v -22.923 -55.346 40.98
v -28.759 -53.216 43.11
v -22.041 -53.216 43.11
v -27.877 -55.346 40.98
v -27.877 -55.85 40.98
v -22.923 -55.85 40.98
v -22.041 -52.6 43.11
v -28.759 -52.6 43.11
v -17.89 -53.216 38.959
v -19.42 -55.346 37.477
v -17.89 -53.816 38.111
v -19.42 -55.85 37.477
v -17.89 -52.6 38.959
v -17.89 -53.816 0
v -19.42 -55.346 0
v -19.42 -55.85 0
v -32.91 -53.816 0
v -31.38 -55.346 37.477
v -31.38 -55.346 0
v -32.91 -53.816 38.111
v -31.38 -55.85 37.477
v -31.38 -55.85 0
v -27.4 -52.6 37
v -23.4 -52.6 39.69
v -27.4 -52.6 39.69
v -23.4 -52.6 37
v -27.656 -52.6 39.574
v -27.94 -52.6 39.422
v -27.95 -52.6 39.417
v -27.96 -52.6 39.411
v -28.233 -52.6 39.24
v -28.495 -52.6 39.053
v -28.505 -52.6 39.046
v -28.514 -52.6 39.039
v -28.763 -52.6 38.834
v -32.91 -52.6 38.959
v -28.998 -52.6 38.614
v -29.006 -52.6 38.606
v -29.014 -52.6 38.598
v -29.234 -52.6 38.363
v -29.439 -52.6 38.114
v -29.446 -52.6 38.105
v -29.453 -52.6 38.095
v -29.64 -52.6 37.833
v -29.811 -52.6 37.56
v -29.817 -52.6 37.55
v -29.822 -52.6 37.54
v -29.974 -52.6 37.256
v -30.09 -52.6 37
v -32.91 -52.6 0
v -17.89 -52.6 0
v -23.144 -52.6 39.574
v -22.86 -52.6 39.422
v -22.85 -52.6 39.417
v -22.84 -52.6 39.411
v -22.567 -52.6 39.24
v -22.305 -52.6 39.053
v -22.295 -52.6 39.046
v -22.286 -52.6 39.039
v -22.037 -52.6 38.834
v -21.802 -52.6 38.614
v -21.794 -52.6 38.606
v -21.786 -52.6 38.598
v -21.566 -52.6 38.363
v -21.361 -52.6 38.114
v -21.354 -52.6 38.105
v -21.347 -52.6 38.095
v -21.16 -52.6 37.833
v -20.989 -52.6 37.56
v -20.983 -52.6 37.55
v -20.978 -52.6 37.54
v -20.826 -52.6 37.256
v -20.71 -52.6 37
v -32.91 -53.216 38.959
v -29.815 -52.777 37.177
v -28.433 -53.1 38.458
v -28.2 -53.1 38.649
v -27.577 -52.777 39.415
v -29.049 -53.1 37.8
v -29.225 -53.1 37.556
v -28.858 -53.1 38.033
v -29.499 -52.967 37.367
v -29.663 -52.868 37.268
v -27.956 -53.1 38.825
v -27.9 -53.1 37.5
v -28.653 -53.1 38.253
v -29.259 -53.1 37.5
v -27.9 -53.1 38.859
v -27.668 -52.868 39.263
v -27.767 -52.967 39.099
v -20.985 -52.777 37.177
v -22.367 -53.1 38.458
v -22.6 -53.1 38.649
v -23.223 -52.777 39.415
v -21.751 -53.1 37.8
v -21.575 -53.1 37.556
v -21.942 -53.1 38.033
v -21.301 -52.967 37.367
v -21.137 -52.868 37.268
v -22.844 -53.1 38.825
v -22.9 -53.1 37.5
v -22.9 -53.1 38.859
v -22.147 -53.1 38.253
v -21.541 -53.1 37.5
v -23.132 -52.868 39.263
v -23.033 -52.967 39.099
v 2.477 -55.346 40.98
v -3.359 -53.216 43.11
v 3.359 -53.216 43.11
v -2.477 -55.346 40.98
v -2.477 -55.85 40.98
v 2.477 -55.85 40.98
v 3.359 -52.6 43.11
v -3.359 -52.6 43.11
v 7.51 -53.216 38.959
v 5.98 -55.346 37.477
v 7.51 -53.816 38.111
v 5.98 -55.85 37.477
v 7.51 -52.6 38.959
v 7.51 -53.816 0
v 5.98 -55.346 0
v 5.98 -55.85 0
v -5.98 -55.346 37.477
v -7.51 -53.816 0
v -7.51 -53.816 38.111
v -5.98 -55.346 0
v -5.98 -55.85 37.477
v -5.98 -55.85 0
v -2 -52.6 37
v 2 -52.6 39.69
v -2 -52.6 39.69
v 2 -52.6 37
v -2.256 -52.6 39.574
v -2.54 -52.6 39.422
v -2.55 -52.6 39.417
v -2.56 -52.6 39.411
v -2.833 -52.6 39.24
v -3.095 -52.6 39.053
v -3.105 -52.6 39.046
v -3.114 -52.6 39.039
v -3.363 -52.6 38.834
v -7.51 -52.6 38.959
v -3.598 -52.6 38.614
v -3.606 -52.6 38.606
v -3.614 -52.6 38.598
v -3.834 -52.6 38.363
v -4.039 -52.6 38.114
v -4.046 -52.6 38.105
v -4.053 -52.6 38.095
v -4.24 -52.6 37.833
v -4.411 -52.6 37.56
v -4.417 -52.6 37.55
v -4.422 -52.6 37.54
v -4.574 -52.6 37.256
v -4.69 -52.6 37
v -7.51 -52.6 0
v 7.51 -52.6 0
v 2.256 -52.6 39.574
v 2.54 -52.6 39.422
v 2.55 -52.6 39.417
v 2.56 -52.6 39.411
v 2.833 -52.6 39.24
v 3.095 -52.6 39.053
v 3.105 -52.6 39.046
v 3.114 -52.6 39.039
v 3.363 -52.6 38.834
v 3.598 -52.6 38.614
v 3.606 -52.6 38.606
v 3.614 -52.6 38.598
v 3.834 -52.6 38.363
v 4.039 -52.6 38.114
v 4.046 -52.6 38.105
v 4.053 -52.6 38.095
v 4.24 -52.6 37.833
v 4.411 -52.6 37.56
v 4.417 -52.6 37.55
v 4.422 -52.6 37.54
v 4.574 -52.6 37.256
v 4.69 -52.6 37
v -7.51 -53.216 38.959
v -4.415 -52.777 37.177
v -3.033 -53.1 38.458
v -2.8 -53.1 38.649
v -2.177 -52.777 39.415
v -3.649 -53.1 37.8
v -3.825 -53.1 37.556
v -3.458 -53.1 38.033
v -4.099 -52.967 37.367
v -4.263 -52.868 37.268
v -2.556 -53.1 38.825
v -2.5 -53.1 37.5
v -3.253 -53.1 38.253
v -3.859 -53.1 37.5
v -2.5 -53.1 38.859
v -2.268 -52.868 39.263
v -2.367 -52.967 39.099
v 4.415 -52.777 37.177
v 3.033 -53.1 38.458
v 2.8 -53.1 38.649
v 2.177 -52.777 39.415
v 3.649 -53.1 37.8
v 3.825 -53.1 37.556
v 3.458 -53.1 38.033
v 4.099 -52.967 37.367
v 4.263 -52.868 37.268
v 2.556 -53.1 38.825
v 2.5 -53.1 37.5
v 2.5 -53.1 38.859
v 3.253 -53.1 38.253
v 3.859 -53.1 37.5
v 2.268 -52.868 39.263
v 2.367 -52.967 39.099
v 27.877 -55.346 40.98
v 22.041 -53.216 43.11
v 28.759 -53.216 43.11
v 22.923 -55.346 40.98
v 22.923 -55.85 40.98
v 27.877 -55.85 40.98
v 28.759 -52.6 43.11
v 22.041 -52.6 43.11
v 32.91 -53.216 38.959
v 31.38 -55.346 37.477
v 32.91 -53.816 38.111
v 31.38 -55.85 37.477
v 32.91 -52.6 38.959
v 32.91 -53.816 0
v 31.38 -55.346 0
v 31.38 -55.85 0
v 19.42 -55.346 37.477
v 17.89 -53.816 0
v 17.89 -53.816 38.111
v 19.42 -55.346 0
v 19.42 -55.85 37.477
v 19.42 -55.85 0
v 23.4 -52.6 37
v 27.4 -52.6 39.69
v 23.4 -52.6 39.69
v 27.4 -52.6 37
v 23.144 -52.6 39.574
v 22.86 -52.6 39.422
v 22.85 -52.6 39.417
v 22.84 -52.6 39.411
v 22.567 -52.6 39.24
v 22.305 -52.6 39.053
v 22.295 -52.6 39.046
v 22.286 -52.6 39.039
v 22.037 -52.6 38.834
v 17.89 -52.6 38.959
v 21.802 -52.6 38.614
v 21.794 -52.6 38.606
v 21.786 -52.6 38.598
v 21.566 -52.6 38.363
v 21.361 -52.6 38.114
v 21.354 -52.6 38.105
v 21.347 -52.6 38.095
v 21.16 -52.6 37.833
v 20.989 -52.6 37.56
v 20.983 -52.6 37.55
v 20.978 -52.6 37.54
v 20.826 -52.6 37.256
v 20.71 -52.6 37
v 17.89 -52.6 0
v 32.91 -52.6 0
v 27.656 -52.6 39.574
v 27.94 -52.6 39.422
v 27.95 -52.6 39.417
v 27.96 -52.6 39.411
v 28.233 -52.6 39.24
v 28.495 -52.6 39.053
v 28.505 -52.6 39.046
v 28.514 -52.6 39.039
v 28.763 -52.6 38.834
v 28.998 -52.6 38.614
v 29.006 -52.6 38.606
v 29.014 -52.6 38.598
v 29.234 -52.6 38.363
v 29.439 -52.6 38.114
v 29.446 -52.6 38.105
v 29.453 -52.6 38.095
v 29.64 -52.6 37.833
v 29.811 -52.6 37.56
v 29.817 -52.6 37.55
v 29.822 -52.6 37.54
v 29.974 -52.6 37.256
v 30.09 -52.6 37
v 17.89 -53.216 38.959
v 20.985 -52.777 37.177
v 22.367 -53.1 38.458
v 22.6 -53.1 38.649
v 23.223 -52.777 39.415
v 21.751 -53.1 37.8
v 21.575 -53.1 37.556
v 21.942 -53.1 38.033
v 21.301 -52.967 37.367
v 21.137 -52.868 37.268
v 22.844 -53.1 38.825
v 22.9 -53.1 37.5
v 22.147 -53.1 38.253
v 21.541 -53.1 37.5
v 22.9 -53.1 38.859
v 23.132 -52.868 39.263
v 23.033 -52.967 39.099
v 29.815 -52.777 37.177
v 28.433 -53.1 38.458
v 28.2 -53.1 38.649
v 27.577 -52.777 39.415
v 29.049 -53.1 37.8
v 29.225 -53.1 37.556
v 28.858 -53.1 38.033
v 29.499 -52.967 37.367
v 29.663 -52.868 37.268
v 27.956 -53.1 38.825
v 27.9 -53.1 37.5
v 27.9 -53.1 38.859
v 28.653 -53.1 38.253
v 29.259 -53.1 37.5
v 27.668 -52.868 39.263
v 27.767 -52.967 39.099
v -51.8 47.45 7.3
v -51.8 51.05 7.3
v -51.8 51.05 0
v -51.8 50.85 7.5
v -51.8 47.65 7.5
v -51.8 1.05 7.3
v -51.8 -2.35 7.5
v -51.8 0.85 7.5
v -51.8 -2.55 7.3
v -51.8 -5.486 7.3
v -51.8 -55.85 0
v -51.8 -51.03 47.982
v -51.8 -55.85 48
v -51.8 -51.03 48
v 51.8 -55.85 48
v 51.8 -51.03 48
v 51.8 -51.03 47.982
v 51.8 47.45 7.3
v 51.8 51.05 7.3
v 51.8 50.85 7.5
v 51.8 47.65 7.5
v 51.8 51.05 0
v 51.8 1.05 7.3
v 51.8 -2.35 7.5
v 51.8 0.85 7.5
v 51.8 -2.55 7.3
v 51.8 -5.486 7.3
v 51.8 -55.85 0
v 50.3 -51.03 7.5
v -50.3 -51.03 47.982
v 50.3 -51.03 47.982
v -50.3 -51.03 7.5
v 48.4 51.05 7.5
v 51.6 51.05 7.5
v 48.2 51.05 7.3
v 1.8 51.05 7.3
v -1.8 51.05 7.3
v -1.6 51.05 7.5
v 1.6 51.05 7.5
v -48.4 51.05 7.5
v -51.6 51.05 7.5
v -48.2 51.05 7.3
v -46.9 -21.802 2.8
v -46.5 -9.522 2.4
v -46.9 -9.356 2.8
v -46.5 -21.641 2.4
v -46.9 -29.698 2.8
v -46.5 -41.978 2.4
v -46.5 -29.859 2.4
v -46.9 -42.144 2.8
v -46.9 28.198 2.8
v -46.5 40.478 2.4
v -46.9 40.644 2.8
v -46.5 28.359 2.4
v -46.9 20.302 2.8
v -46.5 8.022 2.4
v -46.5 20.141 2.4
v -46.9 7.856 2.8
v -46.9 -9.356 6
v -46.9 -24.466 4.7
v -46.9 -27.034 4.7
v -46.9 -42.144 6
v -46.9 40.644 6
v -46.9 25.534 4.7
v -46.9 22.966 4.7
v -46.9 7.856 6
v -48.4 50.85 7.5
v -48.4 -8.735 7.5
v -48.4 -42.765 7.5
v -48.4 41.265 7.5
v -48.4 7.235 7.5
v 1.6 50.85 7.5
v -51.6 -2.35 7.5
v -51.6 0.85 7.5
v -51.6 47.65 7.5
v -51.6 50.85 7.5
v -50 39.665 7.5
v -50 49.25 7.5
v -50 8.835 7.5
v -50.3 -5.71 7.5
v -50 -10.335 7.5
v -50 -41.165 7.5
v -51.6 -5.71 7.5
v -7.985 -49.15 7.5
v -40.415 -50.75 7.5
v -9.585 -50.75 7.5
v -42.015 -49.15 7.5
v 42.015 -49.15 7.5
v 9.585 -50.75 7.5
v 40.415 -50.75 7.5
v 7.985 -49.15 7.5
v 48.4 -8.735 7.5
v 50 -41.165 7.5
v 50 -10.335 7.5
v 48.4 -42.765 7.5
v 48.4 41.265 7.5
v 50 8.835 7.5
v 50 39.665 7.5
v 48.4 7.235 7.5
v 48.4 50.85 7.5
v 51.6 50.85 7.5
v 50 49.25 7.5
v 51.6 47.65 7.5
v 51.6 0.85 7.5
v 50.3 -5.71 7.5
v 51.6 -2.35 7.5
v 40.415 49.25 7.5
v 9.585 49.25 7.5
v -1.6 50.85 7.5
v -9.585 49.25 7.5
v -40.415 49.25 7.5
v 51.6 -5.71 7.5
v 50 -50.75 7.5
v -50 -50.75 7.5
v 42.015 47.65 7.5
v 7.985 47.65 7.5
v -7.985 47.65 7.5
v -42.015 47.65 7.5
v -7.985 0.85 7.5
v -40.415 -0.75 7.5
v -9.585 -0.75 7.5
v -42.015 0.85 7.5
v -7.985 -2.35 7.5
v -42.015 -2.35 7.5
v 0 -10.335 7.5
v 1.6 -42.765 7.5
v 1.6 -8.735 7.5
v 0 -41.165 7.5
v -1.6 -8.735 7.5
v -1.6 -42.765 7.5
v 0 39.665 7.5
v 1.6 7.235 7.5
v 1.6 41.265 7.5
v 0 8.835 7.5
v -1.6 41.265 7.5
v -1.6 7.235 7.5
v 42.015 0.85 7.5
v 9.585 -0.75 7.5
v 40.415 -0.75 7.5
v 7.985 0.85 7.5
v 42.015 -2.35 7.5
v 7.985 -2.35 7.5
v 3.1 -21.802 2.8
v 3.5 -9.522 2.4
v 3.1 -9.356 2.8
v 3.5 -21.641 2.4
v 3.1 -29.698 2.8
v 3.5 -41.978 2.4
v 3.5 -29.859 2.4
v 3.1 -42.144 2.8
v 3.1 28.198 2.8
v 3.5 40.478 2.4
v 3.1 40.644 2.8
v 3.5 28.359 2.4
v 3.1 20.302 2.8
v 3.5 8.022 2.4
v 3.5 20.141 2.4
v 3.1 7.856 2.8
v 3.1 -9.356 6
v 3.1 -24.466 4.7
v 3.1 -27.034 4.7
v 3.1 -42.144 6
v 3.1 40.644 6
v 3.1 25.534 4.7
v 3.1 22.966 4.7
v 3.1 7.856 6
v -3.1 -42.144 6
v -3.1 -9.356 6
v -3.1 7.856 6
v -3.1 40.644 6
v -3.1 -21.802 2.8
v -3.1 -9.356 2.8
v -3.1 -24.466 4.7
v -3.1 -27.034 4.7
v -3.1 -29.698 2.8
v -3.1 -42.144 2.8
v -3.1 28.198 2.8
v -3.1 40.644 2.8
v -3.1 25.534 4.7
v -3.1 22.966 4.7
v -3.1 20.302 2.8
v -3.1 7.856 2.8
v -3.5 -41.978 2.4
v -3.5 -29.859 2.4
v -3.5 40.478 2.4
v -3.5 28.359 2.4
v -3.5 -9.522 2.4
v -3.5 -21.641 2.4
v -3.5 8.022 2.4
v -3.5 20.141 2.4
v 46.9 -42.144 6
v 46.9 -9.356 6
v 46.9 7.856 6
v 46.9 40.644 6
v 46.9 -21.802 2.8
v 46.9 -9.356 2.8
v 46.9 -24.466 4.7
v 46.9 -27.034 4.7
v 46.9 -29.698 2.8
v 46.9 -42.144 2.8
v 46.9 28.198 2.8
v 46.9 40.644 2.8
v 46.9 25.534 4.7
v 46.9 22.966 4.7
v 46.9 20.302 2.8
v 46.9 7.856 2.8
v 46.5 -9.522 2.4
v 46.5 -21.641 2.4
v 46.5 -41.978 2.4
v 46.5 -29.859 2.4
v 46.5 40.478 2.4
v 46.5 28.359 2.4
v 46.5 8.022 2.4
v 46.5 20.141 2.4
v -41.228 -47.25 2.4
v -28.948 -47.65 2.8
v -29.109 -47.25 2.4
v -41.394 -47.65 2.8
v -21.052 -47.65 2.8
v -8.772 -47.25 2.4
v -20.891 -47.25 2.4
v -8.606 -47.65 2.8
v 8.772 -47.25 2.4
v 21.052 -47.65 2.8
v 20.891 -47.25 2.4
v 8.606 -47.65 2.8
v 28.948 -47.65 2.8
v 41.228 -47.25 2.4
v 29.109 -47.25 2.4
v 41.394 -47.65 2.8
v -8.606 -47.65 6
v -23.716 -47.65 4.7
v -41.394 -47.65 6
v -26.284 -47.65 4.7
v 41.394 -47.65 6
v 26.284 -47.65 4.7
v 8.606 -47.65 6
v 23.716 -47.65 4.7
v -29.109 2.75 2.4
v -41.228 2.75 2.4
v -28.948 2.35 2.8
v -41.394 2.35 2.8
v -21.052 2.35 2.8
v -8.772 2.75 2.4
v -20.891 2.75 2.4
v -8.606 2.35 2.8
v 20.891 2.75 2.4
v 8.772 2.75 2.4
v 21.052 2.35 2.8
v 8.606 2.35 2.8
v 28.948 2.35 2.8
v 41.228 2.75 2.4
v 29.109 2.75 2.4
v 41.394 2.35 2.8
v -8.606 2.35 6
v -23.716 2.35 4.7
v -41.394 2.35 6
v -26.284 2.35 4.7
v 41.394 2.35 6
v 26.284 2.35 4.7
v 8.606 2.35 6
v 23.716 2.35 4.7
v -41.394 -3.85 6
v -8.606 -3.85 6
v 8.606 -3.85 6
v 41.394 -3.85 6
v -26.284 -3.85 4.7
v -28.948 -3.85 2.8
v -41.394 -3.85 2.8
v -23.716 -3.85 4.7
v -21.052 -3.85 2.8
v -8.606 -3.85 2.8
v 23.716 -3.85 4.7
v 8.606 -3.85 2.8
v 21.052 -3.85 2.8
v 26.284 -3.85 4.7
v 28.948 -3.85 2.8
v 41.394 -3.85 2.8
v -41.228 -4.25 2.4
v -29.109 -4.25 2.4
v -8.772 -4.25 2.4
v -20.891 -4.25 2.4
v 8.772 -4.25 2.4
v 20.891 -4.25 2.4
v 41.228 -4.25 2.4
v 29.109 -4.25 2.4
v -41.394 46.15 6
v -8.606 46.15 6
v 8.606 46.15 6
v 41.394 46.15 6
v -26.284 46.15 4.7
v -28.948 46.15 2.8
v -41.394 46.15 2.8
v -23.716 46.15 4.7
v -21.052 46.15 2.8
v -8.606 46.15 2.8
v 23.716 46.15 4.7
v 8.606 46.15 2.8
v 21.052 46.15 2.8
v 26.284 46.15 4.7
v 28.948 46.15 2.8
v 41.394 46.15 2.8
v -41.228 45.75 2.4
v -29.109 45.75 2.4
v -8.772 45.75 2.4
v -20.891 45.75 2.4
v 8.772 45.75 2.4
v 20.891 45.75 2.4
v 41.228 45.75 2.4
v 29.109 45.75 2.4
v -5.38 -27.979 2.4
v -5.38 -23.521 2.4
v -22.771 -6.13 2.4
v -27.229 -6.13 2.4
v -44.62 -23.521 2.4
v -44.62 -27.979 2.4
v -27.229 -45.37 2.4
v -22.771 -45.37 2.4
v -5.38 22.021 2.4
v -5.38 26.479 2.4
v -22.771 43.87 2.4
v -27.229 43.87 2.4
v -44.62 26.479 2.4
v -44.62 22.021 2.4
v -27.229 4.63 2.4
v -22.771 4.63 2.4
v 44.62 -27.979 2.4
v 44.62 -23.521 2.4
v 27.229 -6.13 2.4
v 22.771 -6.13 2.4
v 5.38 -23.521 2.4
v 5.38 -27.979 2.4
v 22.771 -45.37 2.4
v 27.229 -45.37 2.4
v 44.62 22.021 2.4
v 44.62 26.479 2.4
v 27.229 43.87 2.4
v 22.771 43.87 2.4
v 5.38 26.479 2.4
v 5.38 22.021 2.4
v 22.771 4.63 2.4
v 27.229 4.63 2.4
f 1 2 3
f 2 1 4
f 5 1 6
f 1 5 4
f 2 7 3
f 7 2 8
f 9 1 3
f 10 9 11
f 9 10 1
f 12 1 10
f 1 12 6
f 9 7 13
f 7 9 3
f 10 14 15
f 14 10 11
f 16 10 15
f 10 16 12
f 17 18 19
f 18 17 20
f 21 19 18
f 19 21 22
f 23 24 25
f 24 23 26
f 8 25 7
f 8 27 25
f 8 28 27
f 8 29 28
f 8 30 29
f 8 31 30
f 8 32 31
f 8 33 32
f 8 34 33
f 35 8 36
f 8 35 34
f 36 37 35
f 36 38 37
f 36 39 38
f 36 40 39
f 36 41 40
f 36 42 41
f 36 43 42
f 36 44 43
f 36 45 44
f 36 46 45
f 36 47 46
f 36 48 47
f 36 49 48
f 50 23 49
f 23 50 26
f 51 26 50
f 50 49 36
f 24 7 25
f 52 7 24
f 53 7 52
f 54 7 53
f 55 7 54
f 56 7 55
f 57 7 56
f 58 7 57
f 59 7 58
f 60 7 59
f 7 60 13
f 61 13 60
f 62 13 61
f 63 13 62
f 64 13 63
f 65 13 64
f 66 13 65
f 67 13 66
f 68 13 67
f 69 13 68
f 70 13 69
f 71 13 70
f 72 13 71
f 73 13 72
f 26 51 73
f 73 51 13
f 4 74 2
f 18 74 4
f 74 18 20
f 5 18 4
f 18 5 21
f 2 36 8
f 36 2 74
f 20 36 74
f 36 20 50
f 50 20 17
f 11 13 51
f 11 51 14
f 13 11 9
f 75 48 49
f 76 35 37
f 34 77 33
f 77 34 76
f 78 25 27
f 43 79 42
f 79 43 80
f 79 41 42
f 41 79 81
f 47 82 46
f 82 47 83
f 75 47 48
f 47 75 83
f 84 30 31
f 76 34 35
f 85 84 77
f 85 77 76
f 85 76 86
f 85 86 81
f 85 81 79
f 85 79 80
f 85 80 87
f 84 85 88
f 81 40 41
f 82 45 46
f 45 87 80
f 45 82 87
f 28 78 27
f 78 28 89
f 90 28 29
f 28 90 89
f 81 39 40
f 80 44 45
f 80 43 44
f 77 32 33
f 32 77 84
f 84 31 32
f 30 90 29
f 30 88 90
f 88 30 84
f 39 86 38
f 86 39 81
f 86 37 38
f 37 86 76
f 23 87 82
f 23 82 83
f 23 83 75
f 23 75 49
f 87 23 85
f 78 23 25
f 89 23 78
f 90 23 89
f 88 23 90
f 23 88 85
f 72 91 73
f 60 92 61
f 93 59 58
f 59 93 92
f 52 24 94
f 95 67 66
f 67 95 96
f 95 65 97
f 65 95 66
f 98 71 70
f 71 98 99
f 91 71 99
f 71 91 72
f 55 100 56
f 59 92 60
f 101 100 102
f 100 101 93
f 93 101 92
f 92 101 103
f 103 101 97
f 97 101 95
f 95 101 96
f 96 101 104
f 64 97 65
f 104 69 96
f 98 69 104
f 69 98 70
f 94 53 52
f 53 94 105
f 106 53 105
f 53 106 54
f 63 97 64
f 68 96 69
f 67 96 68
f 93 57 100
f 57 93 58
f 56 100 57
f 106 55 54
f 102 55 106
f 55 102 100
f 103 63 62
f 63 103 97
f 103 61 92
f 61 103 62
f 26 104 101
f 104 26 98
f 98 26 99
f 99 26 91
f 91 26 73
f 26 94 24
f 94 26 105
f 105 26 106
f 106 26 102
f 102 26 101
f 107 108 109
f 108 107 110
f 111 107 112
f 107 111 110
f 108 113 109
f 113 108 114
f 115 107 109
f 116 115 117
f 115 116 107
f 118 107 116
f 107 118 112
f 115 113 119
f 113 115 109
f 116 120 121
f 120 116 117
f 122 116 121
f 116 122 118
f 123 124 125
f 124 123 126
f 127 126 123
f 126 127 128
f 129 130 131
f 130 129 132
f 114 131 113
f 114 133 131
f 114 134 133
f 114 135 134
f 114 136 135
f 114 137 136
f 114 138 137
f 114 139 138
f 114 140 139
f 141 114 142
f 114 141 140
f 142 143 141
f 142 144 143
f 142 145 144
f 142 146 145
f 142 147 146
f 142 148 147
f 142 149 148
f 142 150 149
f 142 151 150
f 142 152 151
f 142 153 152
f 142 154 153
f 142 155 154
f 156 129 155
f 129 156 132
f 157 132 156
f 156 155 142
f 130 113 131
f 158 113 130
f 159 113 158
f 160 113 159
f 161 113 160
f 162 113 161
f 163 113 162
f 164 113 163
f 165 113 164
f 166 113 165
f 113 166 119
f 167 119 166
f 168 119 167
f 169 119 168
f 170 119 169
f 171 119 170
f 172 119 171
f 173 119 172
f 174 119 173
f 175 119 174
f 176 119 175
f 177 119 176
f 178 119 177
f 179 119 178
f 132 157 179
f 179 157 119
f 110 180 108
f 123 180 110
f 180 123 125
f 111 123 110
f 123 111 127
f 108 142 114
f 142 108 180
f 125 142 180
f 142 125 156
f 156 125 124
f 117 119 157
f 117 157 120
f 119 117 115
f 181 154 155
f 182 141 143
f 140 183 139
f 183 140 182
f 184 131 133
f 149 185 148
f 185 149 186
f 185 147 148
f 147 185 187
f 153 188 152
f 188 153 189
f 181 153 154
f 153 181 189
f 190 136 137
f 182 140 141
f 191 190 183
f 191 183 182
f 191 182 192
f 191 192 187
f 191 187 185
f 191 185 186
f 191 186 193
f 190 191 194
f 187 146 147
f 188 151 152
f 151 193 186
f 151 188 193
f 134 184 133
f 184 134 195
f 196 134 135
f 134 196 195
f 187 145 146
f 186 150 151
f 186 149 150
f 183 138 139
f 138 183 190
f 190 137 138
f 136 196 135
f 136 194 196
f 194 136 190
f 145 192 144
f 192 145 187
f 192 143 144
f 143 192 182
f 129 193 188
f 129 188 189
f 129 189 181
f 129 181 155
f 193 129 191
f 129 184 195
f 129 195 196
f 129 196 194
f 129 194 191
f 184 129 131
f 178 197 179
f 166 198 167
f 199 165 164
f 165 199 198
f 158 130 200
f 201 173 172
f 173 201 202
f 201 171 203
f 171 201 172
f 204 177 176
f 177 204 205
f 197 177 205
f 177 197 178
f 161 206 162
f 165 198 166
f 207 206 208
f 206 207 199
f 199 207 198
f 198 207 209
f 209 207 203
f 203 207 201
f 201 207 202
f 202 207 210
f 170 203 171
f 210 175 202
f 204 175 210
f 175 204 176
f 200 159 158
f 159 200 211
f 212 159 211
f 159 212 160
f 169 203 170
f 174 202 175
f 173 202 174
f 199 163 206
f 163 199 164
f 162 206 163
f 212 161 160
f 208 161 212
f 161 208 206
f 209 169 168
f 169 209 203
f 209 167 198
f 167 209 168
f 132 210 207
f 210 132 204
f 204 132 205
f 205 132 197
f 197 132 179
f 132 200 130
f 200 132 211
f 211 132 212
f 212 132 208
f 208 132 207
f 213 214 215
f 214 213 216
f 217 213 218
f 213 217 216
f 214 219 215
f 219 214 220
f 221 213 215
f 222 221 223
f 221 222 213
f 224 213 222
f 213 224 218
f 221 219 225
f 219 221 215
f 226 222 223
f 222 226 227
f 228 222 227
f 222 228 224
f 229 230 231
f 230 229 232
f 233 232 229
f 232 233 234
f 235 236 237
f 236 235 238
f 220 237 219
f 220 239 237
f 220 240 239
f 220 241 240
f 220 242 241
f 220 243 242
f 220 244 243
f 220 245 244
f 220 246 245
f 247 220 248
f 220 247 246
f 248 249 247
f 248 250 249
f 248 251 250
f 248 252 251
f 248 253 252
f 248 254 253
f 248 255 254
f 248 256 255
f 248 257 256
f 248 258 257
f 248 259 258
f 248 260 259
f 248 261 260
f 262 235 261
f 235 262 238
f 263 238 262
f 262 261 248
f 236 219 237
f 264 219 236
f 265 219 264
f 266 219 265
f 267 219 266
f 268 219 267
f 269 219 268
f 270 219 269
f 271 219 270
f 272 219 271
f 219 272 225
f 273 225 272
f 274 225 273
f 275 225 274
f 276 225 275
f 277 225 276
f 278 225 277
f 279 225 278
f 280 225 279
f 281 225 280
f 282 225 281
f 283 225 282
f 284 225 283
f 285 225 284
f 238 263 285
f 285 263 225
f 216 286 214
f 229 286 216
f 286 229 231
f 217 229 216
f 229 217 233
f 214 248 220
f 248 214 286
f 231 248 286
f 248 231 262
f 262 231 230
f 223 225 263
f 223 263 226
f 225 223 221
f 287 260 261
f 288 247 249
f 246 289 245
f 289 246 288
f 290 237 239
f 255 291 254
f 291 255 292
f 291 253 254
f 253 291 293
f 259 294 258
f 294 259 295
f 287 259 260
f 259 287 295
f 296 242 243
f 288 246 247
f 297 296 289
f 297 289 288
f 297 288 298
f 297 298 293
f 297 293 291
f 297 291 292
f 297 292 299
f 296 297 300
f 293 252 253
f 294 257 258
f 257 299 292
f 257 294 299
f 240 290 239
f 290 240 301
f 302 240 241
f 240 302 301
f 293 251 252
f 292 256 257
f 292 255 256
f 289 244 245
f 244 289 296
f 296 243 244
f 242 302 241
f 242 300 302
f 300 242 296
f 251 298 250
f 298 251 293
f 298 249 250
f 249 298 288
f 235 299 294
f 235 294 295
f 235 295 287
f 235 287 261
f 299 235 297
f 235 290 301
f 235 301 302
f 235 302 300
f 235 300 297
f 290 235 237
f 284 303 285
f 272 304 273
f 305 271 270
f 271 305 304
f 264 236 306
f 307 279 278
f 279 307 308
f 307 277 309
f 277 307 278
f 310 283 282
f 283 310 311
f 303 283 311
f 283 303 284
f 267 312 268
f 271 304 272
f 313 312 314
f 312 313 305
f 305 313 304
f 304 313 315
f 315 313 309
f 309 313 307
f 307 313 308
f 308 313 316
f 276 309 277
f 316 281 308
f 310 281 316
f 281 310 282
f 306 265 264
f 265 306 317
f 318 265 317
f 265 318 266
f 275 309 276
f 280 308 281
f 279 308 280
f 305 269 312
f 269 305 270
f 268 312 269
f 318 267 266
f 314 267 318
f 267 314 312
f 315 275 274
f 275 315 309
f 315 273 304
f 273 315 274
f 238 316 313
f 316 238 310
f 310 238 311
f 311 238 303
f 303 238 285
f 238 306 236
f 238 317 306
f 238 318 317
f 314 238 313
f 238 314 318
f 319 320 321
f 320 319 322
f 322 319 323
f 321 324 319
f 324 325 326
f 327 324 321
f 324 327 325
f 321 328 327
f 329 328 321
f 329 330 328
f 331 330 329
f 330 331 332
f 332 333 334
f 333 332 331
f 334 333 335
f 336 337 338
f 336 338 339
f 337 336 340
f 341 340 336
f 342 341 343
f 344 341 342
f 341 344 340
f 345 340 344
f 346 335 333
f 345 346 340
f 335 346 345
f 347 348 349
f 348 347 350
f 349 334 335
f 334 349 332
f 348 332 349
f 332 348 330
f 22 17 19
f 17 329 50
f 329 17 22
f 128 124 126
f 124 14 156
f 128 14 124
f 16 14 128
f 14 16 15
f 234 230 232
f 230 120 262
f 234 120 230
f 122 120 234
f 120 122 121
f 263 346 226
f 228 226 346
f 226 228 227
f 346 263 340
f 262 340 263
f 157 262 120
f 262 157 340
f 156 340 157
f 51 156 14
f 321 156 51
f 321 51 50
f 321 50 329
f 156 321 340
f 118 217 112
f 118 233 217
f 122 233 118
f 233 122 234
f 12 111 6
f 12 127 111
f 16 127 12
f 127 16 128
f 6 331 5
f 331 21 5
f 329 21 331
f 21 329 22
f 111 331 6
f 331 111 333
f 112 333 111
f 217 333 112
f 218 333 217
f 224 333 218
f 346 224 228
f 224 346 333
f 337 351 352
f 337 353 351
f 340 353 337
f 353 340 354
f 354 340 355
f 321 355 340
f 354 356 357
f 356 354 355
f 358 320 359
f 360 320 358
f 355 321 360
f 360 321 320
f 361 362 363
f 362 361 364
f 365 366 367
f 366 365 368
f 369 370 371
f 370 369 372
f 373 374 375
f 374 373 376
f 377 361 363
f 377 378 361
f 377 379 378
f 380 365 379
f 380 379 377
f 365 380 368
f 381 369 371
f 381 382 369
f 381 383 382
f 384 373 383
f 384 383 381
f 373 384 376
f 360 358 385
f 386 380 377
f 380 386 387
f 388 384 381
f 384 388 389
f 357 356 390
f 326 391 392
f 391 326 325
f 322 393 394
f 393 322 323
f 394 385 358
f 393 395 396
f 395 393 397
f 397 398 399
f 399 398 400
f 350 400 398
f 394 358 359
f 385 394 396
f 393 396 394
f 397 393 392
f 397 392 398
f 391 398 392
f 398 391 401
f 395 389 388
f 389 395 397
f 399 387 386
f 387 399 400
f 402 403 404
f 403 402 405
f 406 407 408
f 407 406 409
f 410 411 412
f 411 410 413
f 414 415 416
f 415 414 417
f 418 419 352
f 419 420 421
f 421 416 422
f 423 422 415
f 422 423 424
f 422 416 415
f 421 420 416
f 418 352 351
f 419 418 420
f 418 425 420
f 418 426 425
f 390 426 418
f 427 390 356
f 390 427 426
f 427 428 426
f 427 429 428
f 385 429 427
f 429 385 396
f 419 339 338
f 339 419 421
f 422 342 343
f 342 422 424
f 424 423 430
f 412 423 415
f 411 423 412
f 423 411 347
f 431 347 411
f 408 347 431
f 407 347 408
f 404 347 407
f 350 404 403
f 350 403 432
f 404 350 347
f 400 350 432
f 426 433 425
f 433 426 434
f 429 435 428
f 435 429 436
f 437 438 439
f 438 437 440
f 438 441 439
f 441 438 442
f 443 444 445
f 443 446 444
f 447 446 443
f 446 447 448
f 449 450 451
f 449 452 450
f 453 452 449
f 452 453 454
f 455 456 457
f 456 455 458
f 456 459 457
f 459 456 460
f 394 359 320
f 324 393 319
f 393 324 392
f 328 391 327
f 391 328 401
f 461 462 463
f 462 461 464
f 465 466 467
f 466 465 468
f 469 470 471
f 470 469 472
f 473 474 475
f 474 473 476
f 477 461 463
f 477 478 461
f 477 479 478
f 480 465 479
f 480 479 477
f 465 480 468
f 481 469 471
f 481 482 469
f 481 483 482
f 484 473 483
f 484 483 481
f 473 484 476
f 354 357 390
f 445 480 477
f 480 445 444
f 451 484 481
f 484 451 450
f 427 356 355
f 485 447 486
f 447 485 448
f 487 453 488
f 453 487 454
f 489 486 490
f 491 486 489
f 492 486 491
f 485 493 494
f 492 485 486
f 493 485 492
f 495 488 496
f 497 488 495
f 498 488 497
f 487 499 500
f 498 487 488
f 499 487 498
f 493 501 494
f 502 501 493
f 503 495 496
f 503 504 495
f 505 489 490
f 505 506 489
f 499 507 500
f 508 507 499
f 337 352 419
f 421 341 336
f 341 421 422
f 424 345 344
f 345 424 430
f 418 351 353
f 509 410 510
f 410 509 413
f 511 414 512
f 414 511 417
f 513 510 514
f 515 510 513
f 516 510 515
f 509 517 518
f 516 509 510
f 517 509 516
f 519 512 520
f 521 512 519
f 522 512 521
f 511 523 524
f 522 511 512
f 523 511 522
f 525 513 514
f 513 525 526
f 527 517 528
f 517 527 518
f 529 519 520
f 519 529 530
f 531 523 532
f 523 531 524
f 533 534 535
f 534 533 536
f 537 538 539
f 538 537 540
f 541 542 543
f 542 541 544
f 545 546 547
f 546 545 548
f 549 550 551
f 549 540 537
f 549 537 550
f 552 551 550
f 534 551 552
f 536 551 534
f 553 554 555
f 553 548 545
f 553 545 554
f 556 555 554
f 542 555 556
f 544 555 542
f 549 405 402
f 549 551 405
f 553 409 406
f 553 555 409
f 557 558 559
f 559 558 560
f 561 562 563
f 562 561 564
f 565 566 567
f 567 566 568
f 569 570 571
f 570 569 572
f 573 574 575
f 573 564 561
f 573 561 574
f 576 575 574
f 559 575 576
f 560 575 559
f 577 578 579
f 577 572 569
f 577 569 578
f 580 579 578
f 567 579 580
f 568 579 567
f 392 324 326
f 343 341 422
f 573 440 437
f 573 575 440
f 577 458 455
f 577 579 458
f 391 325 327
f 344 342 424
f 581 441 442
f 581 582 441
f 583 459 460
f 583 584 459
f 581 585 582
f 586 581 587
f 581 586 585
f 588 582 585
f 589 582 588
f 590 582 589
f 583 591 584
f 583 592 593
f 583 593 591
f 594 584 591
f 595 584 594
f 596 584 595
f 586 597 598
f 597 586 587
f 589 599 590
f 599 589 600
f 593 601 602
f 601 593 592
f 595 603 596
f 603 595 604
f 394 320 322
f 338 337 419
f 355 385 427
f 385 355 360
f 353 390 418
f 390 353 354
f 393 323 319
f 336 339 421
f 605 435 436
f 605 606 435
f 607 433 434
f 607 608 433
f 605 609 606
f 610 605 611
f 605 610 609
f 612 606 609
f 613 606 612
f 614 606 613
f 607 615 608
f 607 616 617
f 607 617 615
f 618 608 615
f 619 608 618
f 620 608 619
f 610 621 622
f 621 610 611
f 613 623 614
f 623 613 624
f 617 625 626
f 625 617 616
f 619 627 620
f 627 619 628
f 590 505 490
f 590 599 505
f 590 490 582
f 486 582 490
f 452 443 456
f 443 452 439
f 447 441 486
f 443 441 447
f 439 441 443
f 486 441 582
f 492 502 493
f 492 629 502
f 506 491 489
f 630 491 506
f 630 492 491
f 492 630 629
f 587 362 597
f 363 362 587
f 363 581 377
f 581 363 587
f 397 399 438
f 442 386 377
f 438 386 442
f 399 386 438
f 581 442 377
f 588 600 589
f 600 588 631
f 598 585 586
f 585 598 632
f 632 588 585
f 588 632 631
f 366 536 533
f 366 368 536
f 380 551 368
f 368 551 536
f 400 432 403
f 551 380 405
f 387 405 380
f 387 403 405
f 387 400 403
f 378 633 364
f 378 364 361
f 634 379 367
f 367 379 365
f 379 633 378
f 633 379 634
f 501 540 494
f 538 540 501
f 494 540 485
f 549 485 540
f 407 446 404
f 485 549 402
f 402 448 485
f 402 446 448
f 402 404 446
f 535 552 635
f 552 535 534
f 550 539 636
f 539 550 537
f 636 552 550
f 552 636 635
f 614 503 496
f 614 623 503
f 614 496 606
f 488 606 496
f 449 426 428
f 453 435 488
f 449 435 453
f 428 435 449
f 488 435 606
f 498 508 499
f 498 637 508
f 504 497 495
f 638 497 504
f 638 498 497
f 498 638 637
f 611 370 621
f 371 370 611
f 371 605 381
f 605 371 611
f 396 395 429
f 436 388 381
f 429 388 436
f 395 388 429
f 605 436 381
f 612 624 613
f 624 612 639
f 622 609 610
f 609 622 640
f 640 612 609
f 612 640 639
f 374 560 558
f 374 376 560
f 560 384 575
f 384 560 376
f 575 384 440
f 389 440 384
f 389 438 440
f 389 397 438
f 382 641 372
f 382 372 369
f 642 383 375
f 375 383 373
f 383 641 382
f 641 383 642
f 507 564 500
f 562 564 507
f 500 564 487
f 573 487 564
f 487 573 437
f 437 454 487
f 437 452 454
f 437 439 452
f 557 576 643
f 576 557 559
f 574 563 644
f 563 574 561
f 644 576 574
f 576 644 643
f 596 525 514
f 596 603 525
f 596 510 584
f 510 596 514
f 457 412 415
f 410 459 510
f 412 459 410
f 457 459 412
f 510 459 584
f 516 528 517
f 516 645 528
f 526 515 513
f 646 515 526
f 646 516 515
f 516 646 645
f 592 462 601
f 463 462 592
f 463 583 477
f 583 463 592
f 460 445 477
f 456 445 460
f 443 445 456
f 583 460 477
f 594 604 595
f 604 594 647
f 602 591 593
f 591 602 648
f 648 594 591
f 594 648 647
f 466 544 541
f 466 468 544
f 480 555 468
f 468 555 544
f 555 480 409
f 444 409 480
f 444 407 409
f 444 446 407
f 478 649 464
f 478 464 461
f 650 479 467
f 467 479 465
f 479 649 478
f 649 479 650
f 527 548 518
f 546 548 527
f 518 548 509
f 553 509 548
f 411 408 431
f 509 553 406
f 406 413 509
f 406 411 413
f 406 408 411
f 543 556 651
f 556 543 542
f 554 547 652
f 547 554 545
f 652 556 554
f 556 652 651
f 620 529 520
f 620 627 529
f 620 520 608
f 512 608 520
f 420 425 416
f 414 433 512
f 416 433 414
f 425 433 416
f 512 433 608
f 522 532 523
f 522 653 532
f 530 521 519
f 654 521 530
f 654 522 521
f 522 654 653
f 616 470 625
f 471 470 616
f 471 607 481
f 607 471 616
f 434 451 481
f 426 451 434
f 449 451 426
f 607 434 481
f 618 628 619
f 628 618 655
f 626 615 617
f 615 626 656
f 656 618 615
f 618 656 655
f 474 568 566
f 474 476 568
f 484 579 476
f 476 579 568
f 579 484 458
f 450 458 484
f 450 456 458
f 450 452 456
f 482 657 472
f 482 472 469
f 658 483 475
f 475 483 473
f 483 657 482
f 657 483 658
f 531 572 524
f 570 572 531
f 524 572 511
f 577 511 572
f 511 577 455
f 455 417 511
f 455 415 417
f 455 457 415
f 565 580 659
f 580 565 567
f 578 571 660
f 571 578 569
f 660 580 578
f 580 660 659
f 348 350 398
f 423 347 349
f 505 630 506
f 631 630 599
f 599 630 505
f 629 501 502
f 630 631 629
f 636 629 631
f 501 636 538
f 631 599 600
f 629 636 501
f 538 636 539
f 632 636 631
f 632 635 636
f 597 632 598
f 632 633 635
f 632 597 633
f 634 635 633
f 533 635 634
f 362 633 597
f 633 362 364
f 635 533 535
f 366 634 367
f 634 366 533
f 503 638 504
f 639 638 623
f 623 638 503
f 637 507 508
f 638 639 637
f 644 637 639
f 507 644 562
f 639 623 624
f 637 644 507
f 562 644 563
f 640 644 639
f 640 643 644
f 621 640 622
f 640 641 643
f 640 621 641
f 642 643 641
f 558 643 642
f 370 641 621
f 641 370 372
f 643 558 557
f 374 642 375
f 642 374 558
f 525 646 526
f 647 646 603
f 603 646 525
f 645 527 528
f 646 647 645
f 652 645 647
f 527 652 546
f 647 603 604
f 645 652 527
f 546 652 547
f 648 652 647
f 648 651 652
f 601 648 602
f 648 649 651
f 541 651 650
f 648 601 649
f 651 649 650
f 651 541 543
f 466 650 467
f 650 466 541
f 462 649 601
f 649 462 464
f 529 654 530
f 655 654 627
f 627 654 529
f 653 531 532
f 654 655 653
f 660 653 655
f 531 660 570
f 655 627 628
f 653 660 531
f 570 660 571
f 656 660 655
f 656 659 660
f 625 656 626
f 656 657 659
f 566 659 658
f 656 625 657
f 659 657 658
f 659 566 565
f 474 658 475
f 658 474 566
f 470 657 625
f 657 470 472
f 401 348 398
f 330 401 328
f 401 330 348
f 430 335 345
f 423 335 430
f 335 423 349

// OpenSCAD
/*Created by BlackjackDuck (Andy)
Credit to 
    @David D on Printables for Multiboard
    Jonathan at Keep Making for Multiconnect
    Zach at gridfinity.xyz for the Gridfinity standard
    Katie (and her community) at Hands on Katie on Youtube for advice
Licensed Creative Commons 4.0 Attribution Non-Commercial Sharable with Attribution
TODO: 
    - Add ability to tweak rim height
    - Ability to trim grid height (some versions lop off a tiny bit off the top)

Change Log:
- 2024-09-01 
    - Initial release
- 2025-04-08
    - New backs (Multipoint, openGrid, GOEWS)

*/
// Multibin shelf adaptation, September 2026.
// Reference: supplied 2x2x0.5 LU Topped Rail shell, measured 100 x 100 x 30 mm.
// Raised 50 mm locating grid engages the underside channels between shell feet.
// Drop-in fit, not a snap-lock: the shell lifts straight out.
// Self-contained: original slot profiles retained; back plate uses square edges.

/* [Slot Types] */
// Pegboard uses 25.4 mm pitch; pegboardRailLock selects the fitted rail profile.
Connection_Type = "Multipoint - 1 inch Pegboard"; // [Multipoint - 1 inch Pegboard, Multipoint, Multiconnect - Multiboard, Multiconnect - openGrid, Multiconnect - Custom Size, GOEWS]

/* [Parameters] */
// Render just the floor, locating grid and low rim for a fit-test print.
baseOnly = false;
// Nominal Multibin large units (LU), 50 mm per unit for the reference shell.
unitsWide = 2; // [1:1:10]
unitsDeep = 2; // [1:1:10]
multibinUnitSize = 50;
// Clearance PER SIDE around the complete nominal shell footprint.
shellClearance = 0.3; // [0:0.05:1]
rimThickness = 1.5;
// Rim height above the flat supporting surface.
additionalRimHeight = 2;
baseThickness = 2.4;
overrideBackHeight = false;
customBackHeight = 60;
// Remove the entire floor and low rim, leaving only the locating ridges below the shell.
removeBase = false;
bracketDepthPercentage = 50; // [0:1:100]
// Side brace thickness, matching the original Gridfinity design by default.
bracketThickness = 1.5;

/* [Multibin Locating Grid] */
// Horizontal gap PER SIDE along the measured groove profile.
grooveClearance = 0.10; // [0.05:0.05:0.6]
// Gap below the 5.4 mm groove roof. At least 0.3 also clears shallower crossings.
grooveRoofClearance = 0.3; // [0.3:0.05:1]
// Clearance normal to the diagonal corner faces and horizontally at notch tips.
locatorClearance = 0.10; // [0.05:0.05:0.5]

/* [Slot Customization] */
onRampHalfOffset = true;
customDistanceBetweenSlots = 25;
// Removes slots without shifting the remaining slots off their original grid.
subtractedSlots = 0;
// Multipoint modes: use the fitted Pegboard Click channel and its two upper locks.
pegboardRailLock = true;
// Horizontal clearance PER SIDE for the rail channel; slides in from below.
railSlotClearance = 0.11; // [0.05:0.01:0.4]
// Additional seating depth into the back plate, for the Pegboard Click rail only.
railRecessDepth = 0.80; // [0:0.05:0.9]
// Clearance for the rail's 0.4 mm-deep recesses (not the bin locating grid).
railLockClearance = 0.10; // [0.05:0.05:0.2]
// Minimum room below the seated 41 mm-long rail; back height increases as needed.
railEndClearance = 2;
// Overrides both locking options and removes all inward locking bumps.
slotQuickRelease = false;
dimpleScale = 1; // [0.5:0.05:1.5]
// Original Multiconnect control; Multipoint profiles keep their original size.
slotTolerance = 1.00; // [0.925:0.005:1.075]
slotDepthMicroadjustment = 0; // [-0.5:0.05:0.5]
// Generic pop-in ramps apply only when the fitted rail mode is disabled.
onRampEnabled = true;
On_Ramp_Every_X_Slots = 1;
Multiconnect_Stop_Distance_From_Back = 13;

/* [GOEWS Customization] */
GOEWS_Cleat_position = "normal"; // [normal, top, bottom, custom]
GOEWS_Cleat_custom_height_from_top_of_back = 11.24;

/* [Hidden] */
epsilon = 0.02;
// With no floor, put the ridge roots directly on the print bed.
floorHeight = removeBase ? 0 : baseThickness;
measuredGrooveWidth = 6.4;
measuredEntryChamfer = 0.4;
measuredTaperStart = 3.6;
measuredGrooveDepth = 5.4;
// Measured from the supplied STL at the straight section of each bottom foot.
measuredCornerSetback = 5.447764;
measuredNotchHeight = 2.3;
measuredNotchFlatHalfWidth = 2.27817;
footHalfWidth = (multibinUnitSize-measuredGrooveWidth)/2;
ridgeWidth = measuredGrooveWidth - 2*grooveClearance;
ridgeRootWidth = ridgeWidth + 2*measuredEntryChamfer;
ridgeHeight = measuredGrooveDepth - grooveRoofClearance;
ridgeTopWidth = ridgeWidth - 2*(ridgeHeight-measuredTaperStart);
$fa = 6;
$fs = 0.6;
pegboardMode = Connection_Type == "Multipoint - 1 inch Pegboard";
requestedBackHeight = overrideBackHeight ? customBackHeight : 15 + 15*unitsDeep;
onRampEveryXSlots = On_Ramp_Every_X_Slots;
distanceBetweenSlots = pegboardMode ? 25.4 :
    Connection_Type == "Multiconnect - openGrid" ? 28 :
    Connection_Type == "Multiconnect - Custom Size" ? customDistanceBetweenSlots :
    Connection_Type == "GOEWS" ? 42 : 25;
Connection_Standard = pegboardMode || Connection_Type == "Multipoint" ? "Multipoint" :
    Connection_Type == "GOEWS" ? "GOEWS" :
    Connection_Type == "Multiconnect - Multiboard" ||
    Connection_Type == "Multiconnect - openGrid" ||
    Connection_Type == "Multiconnect - Custom Size" ? "Multiconnect" : "Unknown";
railMountMode = pegboardRailLock && Connection_Standard == "Multipoint";
// Rail end centres are 25 mm apart, with 8 mm beyond each centre: 41 mm overall.
// Its upper centre seats at backHeight - stop distance; bottom is 33 mm below it.
minimumRailBackHeight = Multiconnect_Stop_Distance_From_Back + 33 + railEndClearance;
backHeight = railMountMode ? max(requestedBackHeight,minimumRailBackHeight) : requestedBackHeight;
railSlotInset = railMountMode ? railRecessDepth : 0;
railBumpProjection = 0.2 + 0.4 - railLockClearance;
shellWidth = unitsWide*multibinUnitSize;
shellDepth = unitsDeep*multibinUnitSize;
bayWidth = shellWidth + 2*shellClearance;
bayDepth = shellDepth + 2*shellClearance;
minimumWidth = bayWidth + 2*rimThickness;
// Compact width: usable bay plus the two side walls; no pegboard pitch padding.
totalWidth = minimumWidth;
sideMargin = rimThickness;
totalDepth = bayDepth + rimThickness;
totalHeight = backHeight;
bracketDepth = totalDepth*bracketDepthPercentage/100;
backThickness = Connection_Standard == "Multipoint" ? 4.8 : Connection_Standard == "GOEWS" ? 7 : 6.5;
// Keep one pitch of edge margin for slotted backs: three centred slots on 2x2.
// A narrow one-slot back remains supported. GOEWS keeps its original cleat count.
allSlots = Connection_Standard == "GOEWS" ? floor(totalWidth/distanceBetweenSlots + 0.000001) :
    max(1,floor(totalWidth/distanceBetweenSlots + 0.000001)-1);
slotCount = allSlots-subtractedSlots;
// Centre the full slot pattern. Removing slots preserves surviving positions.
firstSlot = (totalWidth-(allSlots-1)*distanceBetweenSlots)/2 + floor(subtractedSlots/2)*distanceBetweenSlots;

assert(unitsWide >= 1 && unitsWide == floor(unitsWide) && unitsDeep >= 1 && unitsDeep == floor(unitsDeep), "LU counts must be positive integers.");
assert(multibinUnitSize > 0 && shellClearance >= 0, "Unit size must be positive and clearance nonnegative.");
assert(rimThickness > 0 && baseThickness > 0 && additionalRimHeight >= 0, "Wall and floor thickness must be positive; rim height must be nonnegative.");
assert(Connection_Standard != "Unknown", "Select a supported Slot Type.");
assert(!railMountMode || (railLockClearance >= 0.05 && railLockClearance <= 0.2), "Rail lock clearance must be between 0.05 and 0.2 mm.");
assert(!railMountMode || (railSlotClearance >= 0.05 && railSlotClearance <= 0.4), "Rail slot clearance must be between 0.05 and 0.4 mm.");
assert(!railMountMode || (railRecessDepth >= 0 && railRecessDepth <= 0.9 && 2.35-slotDepthMicroadjustment-railRecessDepth >= 1.4), "Keep rail recess between 0 and 0.9 mm and at least 1.4 mm behind the slot.");
assert(!railMountMode || railEndClearance >= 0.5, "Allow at least 0.5 mm below the rail; 2 mm is the default.");
assert(distanceBetweenSlots >= 25, "Slot pitch must be at least 25 mm for these profiles.");
assert(subtractedSlots >= 0 && subtractedSlots == floor(subtractedSlots) && slotCount >= 1, "Keep at least one mounting slot; reduce subtractedSlots.");
assert(backHeight >= 25 && backHeight > baseThickness+additionalRimHeight, "Increase back height above the floor and rim, and to at least 25 mm.");
assert(Multiconnect_Stop_Distance_From_Back >= 12 && Multiconnect_Stop_Distance_From_Back < backHeight, "Slot stop distance must be at least 12 mm and less than back height.");
assert(On_Ramp_Every_X_Slots >= 1 && On_Ramp_Every_X_Slots == floor(On_Ramp_Every_X_Slots), "On-ramp frequency must be a positive integer.");
assert(bracketDepthPercentage >= 0 && bracketDepthPercentage <= 100, "Bracket depth must be between 0 and 100 percent.");
assert(bracketThickness > 0 && bracketThickness <= sideMargin, "Side brace thickness must be positive and fit within the side margin.");
assert(grooveClearance > 0 && ridgeWidth > 0 && ridgeWidth < multibinUnitSize, "Groove clearance must be positive and leave a ridge narrower than one LU.");
assert(grooveRoofClearance >= 0.3 && ridgeHeight > measuredTaperStart && ridgeHeight <= measuredGrooveDepth-0.3, "Roof clearance must be at least 0.3 mm and leave ridge engagement above 3.6 mm; crossings are shallower than the main groove.");
assert(ridgeTopWidth > 0 && ridgeRootWidth < multibinUnitSize, "Reduce groove clearance to retain a positive ridge top; unit size must exceed root width.");
assert(locatorClearance > 0 && locatorClearance < 1, "Locator clearance must be positive and below 1 mm.");
assert(footHalfWidth > measuredCornerSetback+measuredNotchFlatHalfWidth+measuredNotchHeight, "Increase unit size to leave space between corner and midpoint locators.");
echo(overall_width_mm=totalWidth, usable_bay_mm=[bayWidth,bayDepth], slot_pitch_mm=distanceBetweenSlots, slot_centres_from_left_mm=[for(i=[0:slotCount-1]) firstSlot+i*distanceBetweenSlots]);
echo(back_height_mm=backHeight, pegboard_rail_lock=railMountMode, rail_bottom_clearance_mm=railMountMode ? backHeight-Multiconnect_Stop_Distance_From_Back-33 : undef);

// Installed orientation: shell datum is floorHeight; printable geometry starts at Z=0.
translate([-totalWidth/2,-totalDepth/2,0]) shelf();

module shelf() {
    union() {
        if(!baseOnly)
            makebackPlate(totalWidth, backHeight, distanceBetweenSlots, backThickness);
        locatingGrid();
        if(!removeBase) {
            cube([totalWidth,totalDepth,baseThickness]);
            // Thin side walls enclose the bay, without extra lateral padding.
            for(x=[0,totalWidth-sideMargin])
                translate([x,0,0]) cube([sideMargin,totalDepth,baseThickness+additionalRimHeight]);
            translate([0,bayDepth,0]) cube([totalWidth,rimThickness,baseThickness+additionalRimHeight]);
        }
        if(!baseOnly && bracketDepthPercentage > 0)
            for(x=[sideMargin,totalWidth-sideMargin+bracketThickness])
                translate([x,0,backHeight])
                    shelfBracket(backHeight-floorHeight,bracketDepth,bracketThickness);
    }
}

// Grid lines are registered to the shell's nominal 50 mm cells, independently
// of the mounting pitch.
module locatingGrid() {
    intersection() {
        translate([0,0,max(0,floorHeight-epsilon)])
            cube([totalWidth,totalDepth,ridgeHeight+2*epsilon]);
        union() {
            for(x=[0:unitsWide])
                translate([sideMargin+shellClearance+x*multibinUnitSize,0,floorHeight])
                    ridgeAlongY(totalDepth);
            for(y=[0:unitsDeep])
                translate([totalWidth,shellClearance+y*multibinUnitSize,floorHeight])
                    rotate([0,0,90]) ridgeAlongY(totalWidth);
            for(x=[0:unitsWide-1],y=[0:unitsDeep-1])
                translate([sideMargin+shellClearance+(x+0.5)*multibinUnitSize,
                           shellClearance+(y+0.5)*multibinUnitSize,floorHeight])
                    for(angle=[0:90:270]) rotate([0,0,angle]) {
                        cornerLocator();
                        midpointLocator();
                    }
        }
    }
}

// Plane x+y=C tracks the shell's diagonal face through both vertical chamfers.
function cornerPlane(z) = 2*footHalfWidth-measuredCornerSetback +
    sqrt(2)*(min(max(z,0),measuredEntryChamfer)-measuredEntryChamfer+
             max(z-measuredTaperStart,0)+locatorClearance);
function cornerSection(z) = let(p=multibinUnitSize/2,c=cornerPlane(z))
    [[p,p],[c-p,p],[p,c-p]];

module cornerLocator() {
    levels=[-epsilon,0,measuredEntryChamfer,measuredTaperStart,ridgeHeight];
    for(i=[0:len(levels)-2])
        loftSection(cornerSection(levels[i]),cornerSection(levels[i+1]),levels[i],levels[i+1]);
}

// The midpoint notch is a three-sided relief. Its centre rises at 45 degrees;
// the flanks move by sqrt(2)*Z and the relief closes at Z=2.3 mm.
function notchSection(z) = let(
    p=multibinUnitSize/2,
    tip=footHalfWidth-measuredNotchHeight+max(z,0)+locatorClearance,
    diagonal=footHalfWidth-measuredNotchHeight-measuredNotchFlatHalfWidth+
             sqrt(2)*(max(z,0)+locatorClearance),
    inner=tip-diagonal,outer=p-diagonal)
    [[tip,-inner],[p,-outer],[p,outer],[tip,inner]];

module midpointLocator() {
    loftSection(notchSection(0),notchSection(measuredNotchHeight),-epsilon,measuredNotchHeight);
}

// Join corresponding vertices of two counter-clockwise convex sections.
module loftSection(bottom,top,z0,z1) {
    n=len(bottom);
    polyhedron(
        points=concat([for(p=bottom) [p[0],p[1],z0]], [for(p=top) [p[0],p[1],z1]]),
        faces=concat([[for(i=[n-1:-1:0]) i]], [[for(i=[0:n-1]) n+i]],
                     [for(i=[0:n-1]) [i,(i+1)%n,(i+1)%n+n,i+n]]),convexity=4);
}

module ridgeAlongY(length) {
    // Extrusion maps local profile Y to installed Z and extends in positive Y.
    translate([0,length,0]) rotate([90,0,0])
        linear_extrude(height=length)
            // Match the 0.4 mm entry chamfer, straight channel, and upper 45-degree
            // taper. Horizontal clearance is subtracted once on each side.
            polygon([[-ridgeRootWidth/2,-epsilon], [ridgeRootWidth/2,-epsilon],
                     [ridgeRootWidth/2,0],
                     [ridgeWidth/2,measuredEntryChamfer],
                     [ridgeWidth/2,measuredTaperStart],
                     [ridgeTopWidth/2,ridgeHeight],
                     [-ridgeTopWidth/2,ridgeHeight],
                     [-ridgeWidth/2,measuredTaperStart],
                     [-ridgeWidth/2,measuredEntryChamfer],
                     [-ridgeRootWidth/2,0]]);
}

module shelfBracket(bracketHeight, bracketDepth, rimThickness) {
    rotate([-90,0,90]) linear_extrude(height=rimThickness)
        polygon([[0,0],[0,bracketHeight],[bracketDepth,bracketHeight]]);
}

module makebackPlate(backWidth, backHeight, distanceBetweenSlots, backThickness) {
    cleatDrop = GOEWS_Cleat_position == "normal" ? 11.24 : GOEWS_Cleat_position == "top" ? 0 : GOEWS_Cleat_position == "bottom" ? backHeight-13.15 : GOEWS_Cleat_custom_height_from_top_of_back;
    assert(Connection_Standard != "GOEWS" || (cleatDrop >= 0 && cleatDrop <= backHeight-13.15), "GOEWS cleat must stay within the back height.");
    difference() {
        union() {
            // Small overlap with the floor/rim ensures a single connected body.
            translate([0,-backThickness,0]) cube([backWidth,backThickness+epsilon,backHeight]);
            if(Connection_Standard == "GOEWS")
                for(i=[0:slotCount-1])
                    translate([firstSlot+i*distanceBetweenSlots,-backThickness+epsilon,backHeight-cleatDrop]) GOEWSCleatTool(totalHeight);
        }
        for(i=[0:slotCount-1]) {
            x = firstSlot+i*distanceBetweenSlots;
            if(Connection_Standard != "GOEWS")
                translate([x,-2.35+slotDepthMicroadjustment+railSlotInset,backHeight-Multiconnect_Stop_Distance_From_Back]) {
                    if(Connection_Standard == "Multipoint") multiPointSlotTool(totalHeight);
                    else multiConnectSlotTool(totalHeight);
                }
            else {
                translate([x,epsilon,backHeight+0.46-cleatDrop+11.24]) rotate([90,0,0]) cylinder(h=backThickness+2*epsilon,r=7,$fn=96);
                translate([x,-4,backHeight+0.46-cleatDrop+11.24]) rotate([-90,0,0]) cylinder(h=4+2*epsilon,r=10,$fn=96);
            }
        }
    }
}

//Create GOEWS cleats
module GOEWSCleatTool(totalHeight) {
    difference() {
        // main profile
        rotate(a = [180,0,0]) 
            linear_extrude(height = 13.15) 
                let (cleatProfile = [[0,0],[15.1,0],[17.6,2.5],[15.1,5],[0,5]])
                union(){
                    polygon(points = cleatProfile);
                    mirror([1,0,0])
                        polygon(points = cleatProfile);
                };
        // angled slice off bottom
        translate([-17.6, -8, -26.3])
            rotate([45, 0, 0])
                translate([0, 5, 0])
                    cube([35.2, 10, 15]);
        // cutout
        translate([0, -0.005, 2.964])
            rotate([90, 0, 0])
                cylinder(h = 6, r = 9.5, $fn = 256);
    }
}

//Create Slot Tool
module multiConnectSlotTool(totalHeight) {
    //In slotTool, added a new variable distanceOffset which is set by the option:
    distanceOffset = onRampHalfOffset ? distanceBetweenSlots / 2 : 0;
    scale(v = slotTolerance)
    //slot minus optional dimple with optional on-ramp
    let (slotProfile = [[0,0],[10.15,0],[10.15,1.2121],[7.65,3.712],[7.65,5],[0,5]])
    difference() {
        union() {
            //round top
            rotate(a = [90,0,0,]) 
                rotate_extrude($fn=50) 
                    polygon(points = slotProfile);
            //long slot
            translate(v = [0,0,0]) 
                rotate(a = [180,0,0]) 
                linear_extrude(height = totalHeight+1) 
                    union(){
                        polygon(points = slotProfile);
                        mirror([1,0,0])
                            polygon(points = slotProfile);
                    }
            //on-ramp
            if(onRampEnabled)
                for(y = [1:onRampEveryXSlots:totalHeight/distanceBetweenSlots])
                    //then modify the translate within the on-ramp code to include the offset
                    translate(v = [0,-5,(-y*distanceBetweenSlots)+distanceOffset])
                        rotate(a = [-90,0,0]) 
                            cylinder(h = 5, r1 = 12, r2 = 10.15);
        }
        //dimple
        if (slotQuickRelease == false)
            scale(v = dimpleScale) 
            rotate(a = [90,0,0,]) 
                rotate_extrude($fn=50) 
                    polygon(points = [[0,0],[0,1.5],[1.5,0]]);
    }
}

module multiPointSlotTool(totalHeight) {
    slotBaseRadius = 17.0 / 2.0;  // wider width of the inner part of the channel
    slotSkinRadius = 13.75 / 2.0;  // narrower part of the channel near the skin of the model
    slotBaseCatchDepth = .2;  // innermost before the chamfer, base to chamfer height
    slotBaseToSkinChamferDepth = 2.2;  // middle part of the chamfer
    slotSkinDepth = .1;  // top or skinmost part of the channel
    distanceOffset = onRampHalfOffset ? distanceBetweenSlots / 2 : 0;
    octogonScale = 1/sin(67.5);  // math convenience function to convert an octogon hypotenuse to the short length
    let (slotProfile = [
        [0,0],
        [slotBaseRadius,0],
        [slotBaseRadius, slotBaseCatchDepth],
        [slotSkinRadius, slotBaseCatchDepth + slotBaseToSkinChamferDepth],
        [slotSkinRadius, slotBaseCatchDepth + slotBaseToSkinChamferDepth + slotSkinDepth],
        [0, slotBaseCatchDepth + slotBaseToSkinChamferDepth + slotSkinDepth]
    ])
    union() {
        //octagonal top. difference on union because we need to support the dimples cut in.
        difference(){
            // Rail-specific continuous guide; legacy Multipoint keeps its profile.
            if(railMountMode) pegboardRailChannel(totalHeight);
            else union(){
                scale([octogonScale,1,octogonScale])
                rotate(a = [90,67.5,0,]) 
                    rotate_extrude($fn=8) 
                        polygon(points = slotProfile);
                //long slot
                translate(v = [0,0,0]) 
                    rotate(a = [180,0,0]) 
                    linear_extrude(height = totalHeight+1) 
                        union(){
                            polygon(points = slotProfile);
                            mirror([1,0,0])
                                polygon(points = slotProfile);
                        }
            }
            //dimples on each catch point
            if (!slotQuickRelease){
                if(railMountMode)
                    pegboardRailBumps();
                else
                    for(z = [1:On_Ramp_Every_X_Slots:totalHeight/distanceBetweenSlots ])
                        yMultipointSlotDimples(z, slotBaseRadius, distanceBetweenSlots, distanceOffset);
            }
        }
        //on-ramp
        if(onRampEnabled && !railMountMode)
            union(){
                for(y = [1:On_Ramp_Every_X_Slots:totalHeight/distanceBetweenSlots])
                {
                    // create the main entry hexagons
                    translate(v = [0,-5,(-y*distanceBetweenSlots)+distanceOffset])
                    scale([octogonScale,1,octogonScale])
                        rotate(a = [-90,67.5,0]) 
                            cylinder(h=5, r=slotBaseRadius, $fn=8);
                    
                // make the required "pop-in" locking channel dimples.
                xSlotDimples(y, slotBaseRadius, distanceBetweenSlots, distanceOffset);
                mirror([1,0,0])
                     xSlotDimples(y, slotBaseRadius, distanceBetweenSlots, distanceOffset);
                }
            }
    }
}

// Measured supported rail: 14.8 mm wide, 8 mm end radius, 45-degree taper.
// With its face at depth 0.2, the side taper starts at 1.216152 mm;
// the end taper starts at 0.616152 mm. Preserve the lock's seating depth.
// Continuous sides replace generic pop-in ramps: insert the rail from below.
module pegboardRailChannel(height) {
    c=railSlotClearance;
    d=1.216152;
    // Extend through the back face after moving the entire channel and locks inward.
    cutDepth=2.5+railSlotInset+max(0,slotDepthMicroadjustment);
    // The supplied rail transitions to its neck near X=-0.454 mm.
    // Do not extrapolate its 45-degree taper into that neck when recessed deeper.
    taperEnd=min(cutDepth,2.746152);
    profile=[[0,0],[7.4+c,0],[7.4+c,d],
             [7.4+c-(taperEnd-d),taperEnd],
             [7.4+c-(taperEnd-d),cutDepth],[0,cutDepth]];
    module guide(length) {
        rotate([180,0,0]) linear_extrude(height=length)
            union() {polygon(profile); mirror([1,0,0]) polygon(profile);}
    }
    union() {
        guide(height+1);
        intersection() {
            scale([1/sin(67.5),1,1/sin(67.5)]) rotate([90,67.5,0])
                rotate_extrude($fn=8)
                    polygon([[0,0],[8+c,0],[8+c,0.616152],
                             [8+c-(taperEnd-0.616152),taperEnd],
                             [8+c-(taperEnd-0.616152),cutDepth],[0,cutDepth]]);
            translate([0,0,10]) guide(20);
        }
    }
}

// Measured rail recesses: at the rail face, radius 5 mm and two straight edges
// 2.1 mm from the upper centre; all three walls taper inward at 45 degrees to
// a 0.4 mm depth. Rail face is 0.2 mm away from the slot's innermost plane.
// Keep only the upper pair, once per slot, independent of ramp pitch/offset.
module pegboardRailBumps() {
    for(side=[-1,1]) scale([side,1,1])
        rotate([90,0,0]) intersection() {
            r=5.2-railLockClearance;
            a=1.9+railLockClearance;
            p=railBumpProjection;
            translate([0,0,-epsilon])
                cylinder(h=p+epsilon,r1=r+epsilon,r2=r-p,$fn=96);
            loftSection([[a-epsilon,a-epsilon],[6,a-epsilon],[6,6],[a-epsilon,6]],
                        [[a+p,a+p],[6,a+p],[6,6],[a+p,6]],-epsilon,p);
        }
}

module xSlotDimples(y, slotBaseRadius, distanceBetweenSlots, distanceOffset){
    //Multipoint dimples are truncated (on top and side) pyramids
    //this function makes one pair of them
    dimple_pitch = 4.5 / 2; //distance between locking dimples
    difference(){
        translate(v = [slotBaseRadius-0.01,0,(-y*distanceBetweenSlots)+distanceOffset+dimple_pitch])
            rotate(a = [90,45,90]) 
            rotate_extrude($fn=4) 
                polygon(points = [[0,0],[0,1.5],[1.7,0]]);
        translate(v = [slotBaseRadius+.75, -2, (-y*distanceBetweenSlots)+distanceOffset-1])
                cube(4);
        translate(v = [slotBaseRadius-2, 0.01, (-y*distanceBetweenSlots)+distanceOffset-1])
                cube(7);
        }
        difference(){
        translate(v = [slotBaseRadius-0.01,0,(-y*distanceBetweenSlots)+distanceOffset-dimple_pitch])
            rotate(a = [90,45,90]) 
            rotate_extrude($fn=4) 
                polygon(points = [[0,0],[0,1.5],[1.7,0]]);
        translate(v = [slotBaseRadius+.75, -2.01, (-y*distanceBetweenSlots)+distanceOffset-3])
                cube(4);
        translate(v = [slotBaseRadius-2, 0.01, (-y*distanceBetweenSlots)+distanceOffset-5])
                cube(10);
        }
}
module yMultipointSlotDimples(z, slotBaseRadius, distanceBetweenSlots, distanceOffset){
    //This creates the multipoint point out dimples within the channel.
    octogonScale = 1/sin(67.5);
    difference(){
        translate(v = [0,0.01,((-z+.5)*distanceBetweenSlots)+distanceOffset])
            scale([octogonScale,1,octogonScale])
                rotate(a = [-90,67.5,0]) 
                    rotate_extrude($fn=8) 
                        polygon(points = [[0,0],[0,-1.5],[5,0]]);
        translate(v = [0,0,((-z+.5)*distanceBetweenSlots)+distanceOffset])
            cube([10,3,3], center=true);
        translate(v = [0,0,((-z+.5)*distanceBetweenSlots)+distanceOffset])
           cube([3,3,10], center=true);
    }
}   
